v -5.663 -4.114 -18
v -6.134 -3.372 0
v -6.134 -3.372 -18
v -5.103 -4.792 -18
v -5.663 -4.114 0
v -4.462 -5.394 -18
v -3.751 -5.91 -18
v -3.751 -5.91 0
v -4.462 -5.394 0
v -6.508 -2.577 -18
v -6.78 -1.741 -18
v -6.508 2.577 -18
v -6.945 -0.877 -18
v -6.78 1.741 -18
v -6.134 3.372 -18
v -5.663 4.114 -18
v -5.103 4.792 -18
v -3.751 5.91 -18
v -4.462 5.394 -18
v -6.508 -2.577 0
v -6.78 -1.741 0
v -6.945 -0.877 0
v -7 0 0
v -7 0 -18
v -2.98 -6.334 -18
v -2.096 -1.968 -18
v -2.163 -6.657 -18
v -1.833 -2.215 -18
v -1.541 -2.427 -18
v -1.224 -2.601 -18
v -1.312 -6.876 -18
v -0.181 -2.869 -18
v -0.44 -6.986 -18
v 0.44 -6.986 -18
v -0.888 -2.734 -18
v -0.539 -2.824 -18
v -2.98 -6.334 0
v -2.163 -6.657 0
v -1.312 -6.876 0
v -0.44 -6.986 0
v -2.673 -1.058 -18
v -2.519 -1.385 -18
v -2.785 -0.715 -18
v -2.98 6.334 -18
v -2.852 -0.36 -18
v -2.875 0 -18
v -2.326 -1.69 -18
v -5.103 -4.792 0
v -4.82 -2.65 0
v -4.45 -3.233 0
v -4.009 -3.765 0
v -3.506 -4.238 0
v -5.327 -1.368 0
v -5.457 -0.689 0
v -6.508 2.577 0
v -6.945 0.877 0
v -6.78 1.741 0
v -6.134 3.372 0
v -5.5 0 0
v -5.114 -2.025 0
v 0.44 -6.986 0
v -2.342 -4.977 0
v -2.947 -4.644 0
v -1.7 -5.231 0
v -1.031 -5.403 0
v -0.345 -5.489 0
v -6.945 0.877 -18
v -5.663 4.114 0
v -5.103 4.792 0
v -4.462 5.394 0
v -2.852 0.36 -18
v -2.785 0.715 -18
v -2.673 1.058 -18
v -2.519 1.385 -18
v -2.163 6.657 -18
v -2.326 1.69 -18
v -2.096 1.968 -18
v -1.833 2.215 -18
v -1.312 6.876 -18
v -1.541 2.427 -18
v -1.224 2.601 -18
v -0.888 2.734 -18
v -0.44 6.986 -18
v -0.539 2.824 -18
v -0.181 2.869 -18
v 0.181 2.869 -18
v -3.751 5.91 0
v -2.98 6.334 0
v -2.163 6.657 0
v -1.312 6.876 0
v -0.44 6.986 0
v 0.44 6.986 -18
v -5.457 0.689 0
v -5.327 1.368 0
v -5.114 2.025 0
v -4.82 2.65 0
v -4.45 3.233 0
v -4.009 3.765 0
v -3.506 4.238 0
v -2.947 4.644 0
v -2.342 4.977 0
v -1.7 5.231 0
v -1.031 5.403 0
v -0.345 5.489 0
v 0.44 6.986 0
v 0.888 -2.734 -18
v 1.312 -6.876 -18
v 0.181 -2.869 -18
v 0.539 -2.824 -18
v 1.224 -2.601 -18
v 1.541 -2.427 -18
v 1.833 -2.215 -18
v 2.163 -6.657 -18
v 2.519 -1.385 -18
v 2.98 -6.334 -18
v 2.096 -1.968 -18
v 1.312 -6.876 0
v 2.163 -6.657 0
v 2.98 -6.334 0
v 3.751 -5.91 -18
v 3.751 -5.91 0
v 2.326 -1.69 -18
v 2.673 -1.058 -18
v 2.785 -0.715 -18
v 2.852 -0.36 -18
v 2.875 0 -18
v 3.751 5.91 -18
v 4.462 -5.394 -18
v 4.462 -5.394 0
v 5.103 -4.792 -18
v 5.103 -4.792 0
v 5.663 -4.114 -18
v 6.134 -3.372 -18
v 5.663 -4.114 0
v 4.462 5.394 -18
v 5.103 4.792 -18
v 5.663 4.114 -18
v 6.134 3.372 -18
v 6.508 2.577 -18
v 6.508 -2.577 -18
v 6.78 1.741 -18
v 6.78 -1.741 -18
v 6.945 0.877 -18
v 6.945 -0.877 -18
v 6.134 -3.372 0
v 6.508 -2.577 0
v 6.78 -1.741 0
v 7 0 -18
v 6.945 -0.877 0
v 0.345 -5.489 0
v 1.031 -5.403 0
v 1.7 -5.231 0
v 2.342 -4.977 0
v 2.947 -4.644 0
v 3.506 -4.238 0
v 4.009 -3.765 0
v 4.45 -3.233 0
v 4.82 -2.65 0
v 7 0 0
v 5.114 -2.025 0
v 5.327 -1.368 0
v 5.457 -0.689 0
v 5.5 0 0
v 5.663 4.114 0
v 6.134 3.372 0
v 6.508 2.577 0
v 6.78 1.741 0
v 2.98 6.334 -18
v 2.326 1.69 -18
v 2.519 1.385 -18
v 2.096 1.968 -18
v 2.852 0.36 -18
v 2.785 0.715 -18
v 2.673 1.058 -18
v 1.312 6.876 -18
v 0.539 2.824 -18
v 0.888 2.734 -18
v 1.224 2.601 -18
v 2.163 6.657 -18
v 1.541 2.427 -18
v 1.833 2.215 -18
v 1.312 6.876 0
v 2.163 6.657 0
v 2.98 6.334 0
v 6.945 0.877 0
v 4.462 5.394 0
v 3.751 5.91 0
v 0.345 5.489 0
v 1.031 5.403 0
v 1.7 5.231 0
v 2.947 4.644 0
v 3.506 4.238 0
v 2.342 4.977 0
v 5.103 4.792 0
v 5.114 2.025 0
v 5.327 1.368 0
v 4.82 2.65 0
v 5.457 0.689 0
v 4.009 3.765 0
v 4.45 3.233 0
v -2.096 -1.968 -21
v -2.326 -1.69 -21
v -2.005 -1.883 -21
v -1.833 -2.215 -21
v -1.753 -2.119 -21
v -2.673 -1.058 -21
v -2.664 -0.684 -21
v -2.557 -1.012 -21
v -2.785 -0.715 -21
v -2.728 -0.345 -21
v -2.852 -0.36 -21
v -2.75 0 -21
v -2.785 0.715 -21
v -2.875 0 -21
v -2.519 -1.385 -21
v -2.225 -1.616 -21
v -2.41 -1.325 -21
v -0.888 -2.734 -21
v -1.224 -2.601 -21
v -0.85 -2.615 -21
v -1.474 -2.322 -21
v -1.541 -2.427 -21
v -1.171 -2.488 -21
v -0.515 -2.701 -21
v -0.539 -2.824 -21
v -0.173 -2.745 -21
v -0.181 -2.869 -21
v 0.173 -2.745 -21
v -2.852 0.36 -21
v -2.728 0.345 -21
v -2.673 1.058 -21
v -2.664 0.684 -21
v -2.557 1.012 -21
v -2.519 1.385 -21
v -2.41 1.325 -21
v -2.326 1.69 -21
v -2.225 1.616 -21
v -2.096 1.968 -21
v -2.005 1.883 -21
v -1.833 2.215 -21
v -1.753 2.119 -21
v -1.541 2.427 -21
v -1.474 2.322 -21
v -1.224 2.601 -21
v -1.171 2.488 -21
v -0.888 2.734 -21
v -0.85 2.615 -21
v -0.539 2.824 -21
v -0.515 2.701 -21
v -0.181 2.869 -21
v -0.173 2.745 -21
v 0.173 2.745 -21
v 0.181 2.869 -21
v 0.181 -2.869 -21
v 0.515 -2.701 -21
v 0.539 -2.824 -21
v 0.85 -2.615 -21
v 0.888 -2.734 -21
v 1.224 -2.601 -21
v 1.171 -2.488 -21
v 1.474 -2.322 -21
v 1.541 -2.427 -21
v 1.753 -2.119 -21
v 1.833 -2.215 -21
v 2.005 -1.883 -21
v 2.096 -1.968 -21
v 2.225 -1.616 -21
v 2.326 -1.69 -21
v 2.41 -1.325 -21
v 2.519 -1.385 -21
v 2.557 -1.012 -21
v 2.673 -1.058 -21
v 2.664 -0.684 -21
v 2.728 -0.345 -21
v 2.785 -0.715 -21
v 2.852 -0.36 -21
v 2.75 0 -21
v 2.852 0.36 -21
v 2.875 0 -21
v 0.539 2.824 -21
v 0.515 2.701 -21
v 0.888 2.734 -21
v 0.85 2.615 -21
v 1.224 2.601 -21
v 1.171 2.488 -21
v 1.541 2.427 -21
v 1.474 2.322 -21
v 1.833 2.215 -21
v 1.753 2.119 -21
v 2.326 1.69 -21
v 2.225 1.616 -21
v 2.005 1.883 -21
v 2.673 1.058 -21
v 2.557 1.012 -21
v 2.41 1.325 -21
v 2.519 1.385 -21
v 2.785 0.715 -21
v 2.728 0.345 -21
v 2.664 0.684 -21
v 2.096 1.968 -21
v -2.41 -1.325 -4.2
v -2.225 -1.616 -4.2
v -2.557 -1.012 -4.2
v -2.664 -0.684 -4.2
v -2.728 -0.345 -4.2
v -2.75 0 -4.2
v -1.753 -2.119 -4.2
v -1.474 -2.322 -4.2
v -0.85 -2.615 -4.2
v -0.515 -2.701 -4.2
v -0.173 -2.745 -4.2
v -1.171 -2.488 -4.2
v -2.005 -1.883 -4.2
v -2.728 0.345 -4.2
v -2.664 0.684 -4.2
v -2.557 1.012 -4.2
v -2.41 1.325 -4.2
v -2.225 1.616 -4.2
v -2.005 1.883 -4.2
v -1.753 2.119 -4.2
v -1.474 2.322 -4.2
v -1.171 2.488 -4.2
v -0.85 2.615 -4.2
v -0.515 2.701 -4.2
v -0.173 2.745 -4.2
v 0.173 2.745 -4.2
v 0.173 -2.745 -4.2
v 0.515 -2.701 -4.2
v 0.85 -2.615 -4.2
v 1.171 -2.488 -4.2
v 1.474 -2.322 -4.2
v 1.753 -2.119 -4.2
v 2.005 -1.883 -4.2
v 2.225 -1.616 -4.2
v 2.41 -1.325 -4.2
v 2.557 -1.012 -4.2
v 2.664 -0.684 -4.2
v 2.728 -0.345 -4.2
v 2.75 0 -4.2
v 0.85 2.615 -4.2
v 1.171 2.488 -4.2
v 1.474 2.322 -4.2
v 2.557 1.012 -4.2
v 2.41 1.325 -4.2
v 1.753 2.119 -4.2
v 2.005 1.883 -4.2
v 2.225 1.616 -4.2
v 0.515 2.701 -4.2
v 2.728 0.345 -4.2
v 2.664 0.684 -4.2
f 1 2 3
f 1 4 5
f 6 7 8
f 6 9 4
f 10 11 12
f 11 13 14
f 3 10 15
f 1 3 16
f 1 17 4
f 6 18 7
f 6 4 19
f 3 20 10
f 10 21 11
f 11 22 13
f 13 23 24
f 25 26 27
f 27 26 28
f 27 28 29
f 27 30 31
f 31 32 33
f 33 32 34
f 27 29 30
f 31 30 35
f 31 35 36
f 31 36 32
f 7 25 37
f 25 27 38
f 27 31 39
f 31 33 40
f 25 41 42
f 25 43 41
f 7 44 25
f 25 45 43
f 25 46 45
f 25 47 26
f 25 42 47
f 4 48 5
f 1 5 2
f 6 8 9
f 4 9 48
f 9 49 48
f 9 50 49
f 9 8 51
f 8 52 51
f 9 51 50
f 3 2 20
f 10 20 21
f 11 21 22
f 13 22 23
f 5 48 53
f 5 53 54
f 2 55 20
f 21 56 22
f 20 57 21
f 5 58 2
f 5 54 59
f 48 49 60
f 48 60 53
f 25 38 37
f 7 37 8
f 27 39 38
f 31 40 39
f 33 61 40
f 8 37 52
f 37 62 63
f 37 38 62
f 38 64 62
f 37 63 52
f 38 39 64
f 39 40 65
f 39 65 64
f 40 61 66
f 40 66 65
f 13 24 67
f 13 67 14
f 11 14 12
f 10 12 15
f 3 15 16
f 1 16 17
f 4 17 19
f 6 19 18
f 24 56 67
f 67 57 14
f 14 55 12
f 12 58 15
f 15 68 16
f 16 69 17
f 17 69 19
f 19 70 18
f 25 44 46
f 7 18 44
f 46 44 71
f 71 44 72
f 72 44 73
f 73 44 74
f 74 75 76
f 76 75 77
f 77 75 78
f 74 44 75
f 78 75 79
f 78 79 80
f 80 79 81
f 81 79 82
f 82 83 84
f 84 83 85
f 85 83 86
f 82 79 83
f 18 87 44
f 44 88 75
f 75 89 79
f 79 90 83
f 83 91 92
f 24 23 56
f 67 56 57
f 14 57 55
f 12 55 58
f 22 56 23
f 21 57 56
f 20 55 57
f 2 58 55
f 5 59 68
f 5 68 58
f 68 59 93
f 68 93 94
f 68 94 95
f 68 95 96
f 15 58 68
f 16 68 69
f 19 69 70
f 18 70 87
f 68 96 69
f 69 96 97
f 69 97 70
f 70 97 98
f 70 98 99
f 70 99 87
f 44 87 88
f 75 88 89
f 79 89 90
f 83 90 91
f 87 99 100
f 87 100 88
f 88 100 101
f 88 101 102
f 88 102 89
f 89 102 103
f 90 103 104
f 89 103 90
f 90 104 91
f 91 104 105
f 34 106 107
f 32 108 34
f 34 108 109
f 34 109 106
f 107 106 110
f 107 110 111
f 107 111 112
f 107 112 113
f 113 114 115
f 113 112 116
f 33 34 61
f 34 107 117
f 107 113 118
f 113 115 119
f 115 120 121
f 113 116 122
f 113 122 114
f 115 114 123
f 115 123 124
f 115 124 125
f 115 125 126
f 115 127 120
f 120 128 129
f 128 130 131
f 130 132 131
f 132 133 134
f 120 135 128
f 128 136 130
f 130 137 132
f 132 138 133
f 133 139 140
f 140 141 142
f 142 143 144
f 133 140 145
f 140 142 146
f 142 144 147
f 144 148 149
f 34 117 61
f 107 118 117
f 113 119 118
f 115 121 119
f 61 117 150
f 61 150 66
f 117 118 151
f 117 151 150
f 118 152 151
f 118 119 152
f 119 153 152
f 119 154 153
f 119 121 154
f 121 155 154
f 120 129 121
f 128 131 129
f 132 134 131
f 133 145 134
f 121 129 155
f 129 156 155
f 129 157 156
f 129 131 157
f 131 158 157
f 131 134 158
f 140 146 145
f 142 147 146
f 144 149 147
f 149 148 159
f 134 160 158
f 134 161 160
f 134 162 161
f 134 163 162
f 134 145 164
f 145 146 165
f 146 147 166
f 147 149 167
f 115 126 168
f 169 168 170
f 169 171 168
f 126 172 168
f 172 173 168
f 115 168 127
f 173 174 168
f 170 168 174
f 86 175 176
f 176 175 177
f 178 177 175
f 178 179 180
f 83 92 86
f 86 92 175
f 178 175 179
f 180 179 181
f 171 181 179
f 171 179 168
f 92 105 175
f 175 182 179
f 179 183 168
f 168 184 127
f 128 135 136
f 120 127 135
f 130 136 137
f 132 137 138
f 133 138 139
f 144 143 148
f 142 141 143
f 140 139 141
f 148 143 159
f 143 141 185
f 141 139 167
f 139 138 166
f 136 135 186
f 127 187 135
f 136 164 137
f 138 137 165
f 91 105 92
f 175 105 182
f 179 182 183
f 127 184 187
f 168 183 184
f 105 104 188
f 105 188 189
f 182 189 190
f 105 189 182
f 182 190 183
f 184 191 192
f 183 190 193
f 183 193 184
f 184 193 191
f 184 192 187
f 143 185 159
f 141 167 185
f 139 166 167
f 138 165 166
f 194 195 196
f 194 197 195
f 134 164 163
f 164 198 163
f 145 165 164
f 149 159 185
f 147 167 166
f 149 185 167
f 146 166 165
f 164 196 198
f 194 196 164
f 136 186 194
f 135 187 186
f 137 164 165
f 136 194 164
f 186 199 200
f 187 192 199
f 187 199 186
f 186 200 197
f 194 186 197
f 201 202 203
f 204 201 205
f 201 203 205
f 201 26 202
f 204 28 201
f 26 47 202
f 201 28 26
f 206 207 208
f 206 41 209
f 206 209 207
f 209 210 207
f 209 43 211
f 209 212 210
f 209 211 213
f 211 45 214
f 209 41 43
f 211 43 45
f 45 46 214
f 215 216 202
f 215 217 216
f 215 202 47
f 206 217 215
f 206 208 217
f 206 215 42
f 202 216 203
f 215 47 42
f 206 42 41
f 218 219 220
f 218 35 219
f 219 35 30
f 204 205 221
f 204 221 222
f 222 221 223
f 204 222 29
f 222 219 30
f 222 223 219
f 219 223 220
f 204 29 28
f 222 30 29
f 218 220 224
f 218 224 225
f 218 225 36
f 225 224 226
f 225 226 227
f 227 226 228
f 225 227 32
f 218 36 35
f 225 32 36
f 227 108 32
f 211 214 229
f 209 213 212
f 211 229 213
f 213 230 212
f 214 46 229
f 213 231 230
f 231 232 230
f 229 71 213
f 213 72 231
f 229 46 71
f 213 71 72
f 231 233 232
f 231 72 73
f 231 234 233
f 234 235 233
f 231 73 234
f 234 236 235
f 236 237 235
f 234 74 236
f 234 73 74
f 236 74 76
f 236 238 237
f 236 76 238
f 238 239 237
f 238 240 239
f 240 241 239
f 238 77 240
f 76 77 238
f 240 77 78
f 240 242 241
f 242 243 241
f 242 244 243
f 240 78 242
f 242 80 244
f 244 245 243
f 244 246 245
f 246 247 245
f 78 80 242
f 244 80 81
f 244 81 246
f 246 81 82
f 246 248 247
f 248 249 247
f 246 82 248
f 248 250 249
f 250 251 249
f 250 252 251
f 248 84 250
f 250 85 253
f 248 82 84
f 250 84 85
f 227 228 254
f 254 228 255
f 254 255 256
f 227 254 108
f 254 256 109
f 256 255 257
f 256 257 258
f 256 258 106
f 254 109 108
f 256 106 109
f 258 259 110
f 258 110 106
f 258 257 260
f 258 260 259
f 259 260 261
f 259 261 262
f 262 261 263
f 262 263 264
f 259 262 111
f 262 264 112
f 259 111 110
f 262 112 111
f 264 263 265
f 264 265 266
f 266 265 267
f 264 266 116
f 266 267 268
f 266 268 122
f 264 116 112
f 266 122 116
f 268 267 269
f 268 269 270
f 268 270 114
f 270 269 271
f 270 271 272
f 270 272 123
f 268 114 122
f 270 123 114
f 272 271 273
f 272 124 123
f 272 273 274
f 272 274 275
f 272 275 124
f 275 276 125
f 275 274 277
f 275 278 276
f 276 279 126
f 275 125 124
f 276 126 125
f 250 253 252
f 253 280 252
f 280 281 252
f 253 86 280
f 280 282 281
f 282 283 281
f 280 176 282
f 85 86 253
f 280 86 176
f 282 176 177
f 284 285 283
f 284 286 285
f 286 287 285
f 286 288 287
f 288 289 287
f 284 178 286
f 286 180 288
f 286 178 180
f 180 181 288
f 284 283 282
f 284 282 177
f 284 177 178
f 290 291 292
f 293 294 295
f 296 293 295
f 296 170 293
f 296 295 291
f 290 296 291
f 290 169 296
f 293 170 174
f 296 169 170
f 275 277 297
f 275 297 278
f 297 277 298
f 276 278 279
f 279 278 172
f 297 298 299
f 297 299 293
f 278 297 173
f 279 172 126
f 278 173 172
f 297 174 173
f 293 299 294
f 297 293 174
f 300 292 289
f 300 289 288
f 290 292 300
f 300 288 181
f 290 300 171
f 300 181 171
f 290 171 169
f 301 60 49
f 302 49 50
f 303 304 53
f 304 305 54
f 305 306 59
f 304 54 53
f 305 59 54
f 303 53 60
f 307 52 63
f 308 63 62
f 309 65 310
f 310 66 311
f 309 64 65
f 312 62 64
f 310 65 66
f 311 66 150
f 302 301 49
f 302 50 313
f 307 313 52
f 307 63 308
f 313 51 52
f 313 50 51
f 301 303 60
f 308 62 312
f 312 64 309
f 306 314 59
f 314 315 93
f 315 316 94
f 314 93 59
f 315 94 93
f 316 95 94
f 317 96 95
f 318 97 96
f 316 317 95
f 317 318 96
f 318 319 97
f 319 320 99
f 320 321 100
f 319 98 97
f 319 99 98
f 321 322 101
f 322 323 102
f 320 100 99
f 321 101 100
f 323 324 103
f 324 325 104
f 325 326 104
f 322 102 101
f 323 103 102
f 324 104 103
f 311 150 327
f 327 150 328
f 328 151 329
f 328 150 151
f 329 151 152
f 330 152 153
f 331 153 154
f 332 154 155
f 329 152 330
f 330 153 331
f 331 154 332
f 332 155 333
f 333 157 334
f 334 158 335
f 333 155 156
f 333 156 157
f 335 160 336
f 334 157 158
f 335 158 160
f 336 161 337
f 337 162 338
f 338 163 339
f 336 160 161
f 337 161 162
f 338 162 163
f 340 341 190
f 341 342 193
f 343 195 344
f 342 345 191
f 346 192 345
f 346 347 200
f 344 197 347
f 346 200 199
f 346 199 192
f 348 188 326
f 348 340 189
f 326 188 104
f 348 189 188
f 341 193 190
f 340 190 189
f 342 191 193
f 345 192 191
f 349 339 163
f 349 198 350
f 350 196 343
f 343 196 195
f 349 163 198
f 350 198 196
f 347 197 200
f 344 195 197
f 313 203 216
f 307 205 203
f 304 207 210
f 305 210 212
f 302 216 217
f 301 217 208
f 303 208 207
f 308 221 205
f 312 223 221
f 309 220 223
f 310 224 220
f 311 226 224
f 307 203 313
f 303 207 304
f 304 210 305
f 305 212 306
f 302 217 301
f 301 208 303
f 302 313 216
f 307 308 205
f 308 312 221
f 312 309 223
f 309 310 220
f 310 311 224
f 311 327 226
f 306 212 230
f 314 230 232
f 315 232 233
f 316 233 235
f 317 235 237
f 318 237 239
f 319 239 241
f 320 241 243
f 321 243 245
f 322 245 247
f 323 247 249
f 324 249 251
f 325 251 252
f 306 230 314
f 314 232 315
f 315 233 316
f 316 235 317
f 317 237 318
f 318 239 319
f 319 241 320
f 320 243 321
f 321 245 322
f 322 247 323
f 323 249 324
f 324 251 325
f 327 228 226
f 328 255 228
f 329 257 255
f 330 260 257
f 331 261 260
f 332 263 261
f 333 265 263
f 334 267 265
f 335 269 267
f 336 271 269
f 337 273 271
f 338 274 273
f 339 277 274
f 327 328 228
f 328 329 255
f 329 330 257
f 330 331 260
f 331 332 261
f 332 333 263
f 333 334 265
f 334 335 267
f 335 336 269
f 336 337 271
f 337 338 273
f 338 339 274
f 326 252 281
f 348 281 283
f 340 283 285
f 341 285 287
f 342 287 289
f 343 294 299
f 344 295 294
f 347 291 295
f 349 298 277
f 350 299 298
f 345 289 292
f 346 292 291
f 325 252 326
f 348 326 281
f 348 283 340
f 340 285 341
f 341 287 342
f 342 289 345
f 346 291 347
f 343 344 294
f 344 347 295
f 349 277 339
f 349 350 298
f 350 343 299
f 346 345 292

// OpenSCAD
$fn = 50;

difference() {
	union() {
		translate(v = [0, 0, -18.0]) {
			cylinder(h = 18, r = 7.0);
		}
		#translate(v = [0, 0, -21.0]) {
			cylinder(h = 21, r = 2.875);
		}
	}
	union() {
		translate(v = [0, 0, 0]) {
			rotate(a = [0, 0, 0]) {
				difference() {
					union() {
						translate(v = [0, 0, -21.0]) {
							cylinder(h = 21, r = 2.25);
						}
						translate(v = [0, 0, -4.2]) {
							cylinder(h = 4.2, r1 = 2.75, r2 = 5.5);
						}
						translate(v = [0, 0, -21.0]) {
							cylinder(h = 21, r = 2.75);
						}
						translate(v = [0, 0, -21.0]) {
							cylinder(h = 21, r = 2.25);
						}
					}
					union();
				}
			}
		}
	}
}
